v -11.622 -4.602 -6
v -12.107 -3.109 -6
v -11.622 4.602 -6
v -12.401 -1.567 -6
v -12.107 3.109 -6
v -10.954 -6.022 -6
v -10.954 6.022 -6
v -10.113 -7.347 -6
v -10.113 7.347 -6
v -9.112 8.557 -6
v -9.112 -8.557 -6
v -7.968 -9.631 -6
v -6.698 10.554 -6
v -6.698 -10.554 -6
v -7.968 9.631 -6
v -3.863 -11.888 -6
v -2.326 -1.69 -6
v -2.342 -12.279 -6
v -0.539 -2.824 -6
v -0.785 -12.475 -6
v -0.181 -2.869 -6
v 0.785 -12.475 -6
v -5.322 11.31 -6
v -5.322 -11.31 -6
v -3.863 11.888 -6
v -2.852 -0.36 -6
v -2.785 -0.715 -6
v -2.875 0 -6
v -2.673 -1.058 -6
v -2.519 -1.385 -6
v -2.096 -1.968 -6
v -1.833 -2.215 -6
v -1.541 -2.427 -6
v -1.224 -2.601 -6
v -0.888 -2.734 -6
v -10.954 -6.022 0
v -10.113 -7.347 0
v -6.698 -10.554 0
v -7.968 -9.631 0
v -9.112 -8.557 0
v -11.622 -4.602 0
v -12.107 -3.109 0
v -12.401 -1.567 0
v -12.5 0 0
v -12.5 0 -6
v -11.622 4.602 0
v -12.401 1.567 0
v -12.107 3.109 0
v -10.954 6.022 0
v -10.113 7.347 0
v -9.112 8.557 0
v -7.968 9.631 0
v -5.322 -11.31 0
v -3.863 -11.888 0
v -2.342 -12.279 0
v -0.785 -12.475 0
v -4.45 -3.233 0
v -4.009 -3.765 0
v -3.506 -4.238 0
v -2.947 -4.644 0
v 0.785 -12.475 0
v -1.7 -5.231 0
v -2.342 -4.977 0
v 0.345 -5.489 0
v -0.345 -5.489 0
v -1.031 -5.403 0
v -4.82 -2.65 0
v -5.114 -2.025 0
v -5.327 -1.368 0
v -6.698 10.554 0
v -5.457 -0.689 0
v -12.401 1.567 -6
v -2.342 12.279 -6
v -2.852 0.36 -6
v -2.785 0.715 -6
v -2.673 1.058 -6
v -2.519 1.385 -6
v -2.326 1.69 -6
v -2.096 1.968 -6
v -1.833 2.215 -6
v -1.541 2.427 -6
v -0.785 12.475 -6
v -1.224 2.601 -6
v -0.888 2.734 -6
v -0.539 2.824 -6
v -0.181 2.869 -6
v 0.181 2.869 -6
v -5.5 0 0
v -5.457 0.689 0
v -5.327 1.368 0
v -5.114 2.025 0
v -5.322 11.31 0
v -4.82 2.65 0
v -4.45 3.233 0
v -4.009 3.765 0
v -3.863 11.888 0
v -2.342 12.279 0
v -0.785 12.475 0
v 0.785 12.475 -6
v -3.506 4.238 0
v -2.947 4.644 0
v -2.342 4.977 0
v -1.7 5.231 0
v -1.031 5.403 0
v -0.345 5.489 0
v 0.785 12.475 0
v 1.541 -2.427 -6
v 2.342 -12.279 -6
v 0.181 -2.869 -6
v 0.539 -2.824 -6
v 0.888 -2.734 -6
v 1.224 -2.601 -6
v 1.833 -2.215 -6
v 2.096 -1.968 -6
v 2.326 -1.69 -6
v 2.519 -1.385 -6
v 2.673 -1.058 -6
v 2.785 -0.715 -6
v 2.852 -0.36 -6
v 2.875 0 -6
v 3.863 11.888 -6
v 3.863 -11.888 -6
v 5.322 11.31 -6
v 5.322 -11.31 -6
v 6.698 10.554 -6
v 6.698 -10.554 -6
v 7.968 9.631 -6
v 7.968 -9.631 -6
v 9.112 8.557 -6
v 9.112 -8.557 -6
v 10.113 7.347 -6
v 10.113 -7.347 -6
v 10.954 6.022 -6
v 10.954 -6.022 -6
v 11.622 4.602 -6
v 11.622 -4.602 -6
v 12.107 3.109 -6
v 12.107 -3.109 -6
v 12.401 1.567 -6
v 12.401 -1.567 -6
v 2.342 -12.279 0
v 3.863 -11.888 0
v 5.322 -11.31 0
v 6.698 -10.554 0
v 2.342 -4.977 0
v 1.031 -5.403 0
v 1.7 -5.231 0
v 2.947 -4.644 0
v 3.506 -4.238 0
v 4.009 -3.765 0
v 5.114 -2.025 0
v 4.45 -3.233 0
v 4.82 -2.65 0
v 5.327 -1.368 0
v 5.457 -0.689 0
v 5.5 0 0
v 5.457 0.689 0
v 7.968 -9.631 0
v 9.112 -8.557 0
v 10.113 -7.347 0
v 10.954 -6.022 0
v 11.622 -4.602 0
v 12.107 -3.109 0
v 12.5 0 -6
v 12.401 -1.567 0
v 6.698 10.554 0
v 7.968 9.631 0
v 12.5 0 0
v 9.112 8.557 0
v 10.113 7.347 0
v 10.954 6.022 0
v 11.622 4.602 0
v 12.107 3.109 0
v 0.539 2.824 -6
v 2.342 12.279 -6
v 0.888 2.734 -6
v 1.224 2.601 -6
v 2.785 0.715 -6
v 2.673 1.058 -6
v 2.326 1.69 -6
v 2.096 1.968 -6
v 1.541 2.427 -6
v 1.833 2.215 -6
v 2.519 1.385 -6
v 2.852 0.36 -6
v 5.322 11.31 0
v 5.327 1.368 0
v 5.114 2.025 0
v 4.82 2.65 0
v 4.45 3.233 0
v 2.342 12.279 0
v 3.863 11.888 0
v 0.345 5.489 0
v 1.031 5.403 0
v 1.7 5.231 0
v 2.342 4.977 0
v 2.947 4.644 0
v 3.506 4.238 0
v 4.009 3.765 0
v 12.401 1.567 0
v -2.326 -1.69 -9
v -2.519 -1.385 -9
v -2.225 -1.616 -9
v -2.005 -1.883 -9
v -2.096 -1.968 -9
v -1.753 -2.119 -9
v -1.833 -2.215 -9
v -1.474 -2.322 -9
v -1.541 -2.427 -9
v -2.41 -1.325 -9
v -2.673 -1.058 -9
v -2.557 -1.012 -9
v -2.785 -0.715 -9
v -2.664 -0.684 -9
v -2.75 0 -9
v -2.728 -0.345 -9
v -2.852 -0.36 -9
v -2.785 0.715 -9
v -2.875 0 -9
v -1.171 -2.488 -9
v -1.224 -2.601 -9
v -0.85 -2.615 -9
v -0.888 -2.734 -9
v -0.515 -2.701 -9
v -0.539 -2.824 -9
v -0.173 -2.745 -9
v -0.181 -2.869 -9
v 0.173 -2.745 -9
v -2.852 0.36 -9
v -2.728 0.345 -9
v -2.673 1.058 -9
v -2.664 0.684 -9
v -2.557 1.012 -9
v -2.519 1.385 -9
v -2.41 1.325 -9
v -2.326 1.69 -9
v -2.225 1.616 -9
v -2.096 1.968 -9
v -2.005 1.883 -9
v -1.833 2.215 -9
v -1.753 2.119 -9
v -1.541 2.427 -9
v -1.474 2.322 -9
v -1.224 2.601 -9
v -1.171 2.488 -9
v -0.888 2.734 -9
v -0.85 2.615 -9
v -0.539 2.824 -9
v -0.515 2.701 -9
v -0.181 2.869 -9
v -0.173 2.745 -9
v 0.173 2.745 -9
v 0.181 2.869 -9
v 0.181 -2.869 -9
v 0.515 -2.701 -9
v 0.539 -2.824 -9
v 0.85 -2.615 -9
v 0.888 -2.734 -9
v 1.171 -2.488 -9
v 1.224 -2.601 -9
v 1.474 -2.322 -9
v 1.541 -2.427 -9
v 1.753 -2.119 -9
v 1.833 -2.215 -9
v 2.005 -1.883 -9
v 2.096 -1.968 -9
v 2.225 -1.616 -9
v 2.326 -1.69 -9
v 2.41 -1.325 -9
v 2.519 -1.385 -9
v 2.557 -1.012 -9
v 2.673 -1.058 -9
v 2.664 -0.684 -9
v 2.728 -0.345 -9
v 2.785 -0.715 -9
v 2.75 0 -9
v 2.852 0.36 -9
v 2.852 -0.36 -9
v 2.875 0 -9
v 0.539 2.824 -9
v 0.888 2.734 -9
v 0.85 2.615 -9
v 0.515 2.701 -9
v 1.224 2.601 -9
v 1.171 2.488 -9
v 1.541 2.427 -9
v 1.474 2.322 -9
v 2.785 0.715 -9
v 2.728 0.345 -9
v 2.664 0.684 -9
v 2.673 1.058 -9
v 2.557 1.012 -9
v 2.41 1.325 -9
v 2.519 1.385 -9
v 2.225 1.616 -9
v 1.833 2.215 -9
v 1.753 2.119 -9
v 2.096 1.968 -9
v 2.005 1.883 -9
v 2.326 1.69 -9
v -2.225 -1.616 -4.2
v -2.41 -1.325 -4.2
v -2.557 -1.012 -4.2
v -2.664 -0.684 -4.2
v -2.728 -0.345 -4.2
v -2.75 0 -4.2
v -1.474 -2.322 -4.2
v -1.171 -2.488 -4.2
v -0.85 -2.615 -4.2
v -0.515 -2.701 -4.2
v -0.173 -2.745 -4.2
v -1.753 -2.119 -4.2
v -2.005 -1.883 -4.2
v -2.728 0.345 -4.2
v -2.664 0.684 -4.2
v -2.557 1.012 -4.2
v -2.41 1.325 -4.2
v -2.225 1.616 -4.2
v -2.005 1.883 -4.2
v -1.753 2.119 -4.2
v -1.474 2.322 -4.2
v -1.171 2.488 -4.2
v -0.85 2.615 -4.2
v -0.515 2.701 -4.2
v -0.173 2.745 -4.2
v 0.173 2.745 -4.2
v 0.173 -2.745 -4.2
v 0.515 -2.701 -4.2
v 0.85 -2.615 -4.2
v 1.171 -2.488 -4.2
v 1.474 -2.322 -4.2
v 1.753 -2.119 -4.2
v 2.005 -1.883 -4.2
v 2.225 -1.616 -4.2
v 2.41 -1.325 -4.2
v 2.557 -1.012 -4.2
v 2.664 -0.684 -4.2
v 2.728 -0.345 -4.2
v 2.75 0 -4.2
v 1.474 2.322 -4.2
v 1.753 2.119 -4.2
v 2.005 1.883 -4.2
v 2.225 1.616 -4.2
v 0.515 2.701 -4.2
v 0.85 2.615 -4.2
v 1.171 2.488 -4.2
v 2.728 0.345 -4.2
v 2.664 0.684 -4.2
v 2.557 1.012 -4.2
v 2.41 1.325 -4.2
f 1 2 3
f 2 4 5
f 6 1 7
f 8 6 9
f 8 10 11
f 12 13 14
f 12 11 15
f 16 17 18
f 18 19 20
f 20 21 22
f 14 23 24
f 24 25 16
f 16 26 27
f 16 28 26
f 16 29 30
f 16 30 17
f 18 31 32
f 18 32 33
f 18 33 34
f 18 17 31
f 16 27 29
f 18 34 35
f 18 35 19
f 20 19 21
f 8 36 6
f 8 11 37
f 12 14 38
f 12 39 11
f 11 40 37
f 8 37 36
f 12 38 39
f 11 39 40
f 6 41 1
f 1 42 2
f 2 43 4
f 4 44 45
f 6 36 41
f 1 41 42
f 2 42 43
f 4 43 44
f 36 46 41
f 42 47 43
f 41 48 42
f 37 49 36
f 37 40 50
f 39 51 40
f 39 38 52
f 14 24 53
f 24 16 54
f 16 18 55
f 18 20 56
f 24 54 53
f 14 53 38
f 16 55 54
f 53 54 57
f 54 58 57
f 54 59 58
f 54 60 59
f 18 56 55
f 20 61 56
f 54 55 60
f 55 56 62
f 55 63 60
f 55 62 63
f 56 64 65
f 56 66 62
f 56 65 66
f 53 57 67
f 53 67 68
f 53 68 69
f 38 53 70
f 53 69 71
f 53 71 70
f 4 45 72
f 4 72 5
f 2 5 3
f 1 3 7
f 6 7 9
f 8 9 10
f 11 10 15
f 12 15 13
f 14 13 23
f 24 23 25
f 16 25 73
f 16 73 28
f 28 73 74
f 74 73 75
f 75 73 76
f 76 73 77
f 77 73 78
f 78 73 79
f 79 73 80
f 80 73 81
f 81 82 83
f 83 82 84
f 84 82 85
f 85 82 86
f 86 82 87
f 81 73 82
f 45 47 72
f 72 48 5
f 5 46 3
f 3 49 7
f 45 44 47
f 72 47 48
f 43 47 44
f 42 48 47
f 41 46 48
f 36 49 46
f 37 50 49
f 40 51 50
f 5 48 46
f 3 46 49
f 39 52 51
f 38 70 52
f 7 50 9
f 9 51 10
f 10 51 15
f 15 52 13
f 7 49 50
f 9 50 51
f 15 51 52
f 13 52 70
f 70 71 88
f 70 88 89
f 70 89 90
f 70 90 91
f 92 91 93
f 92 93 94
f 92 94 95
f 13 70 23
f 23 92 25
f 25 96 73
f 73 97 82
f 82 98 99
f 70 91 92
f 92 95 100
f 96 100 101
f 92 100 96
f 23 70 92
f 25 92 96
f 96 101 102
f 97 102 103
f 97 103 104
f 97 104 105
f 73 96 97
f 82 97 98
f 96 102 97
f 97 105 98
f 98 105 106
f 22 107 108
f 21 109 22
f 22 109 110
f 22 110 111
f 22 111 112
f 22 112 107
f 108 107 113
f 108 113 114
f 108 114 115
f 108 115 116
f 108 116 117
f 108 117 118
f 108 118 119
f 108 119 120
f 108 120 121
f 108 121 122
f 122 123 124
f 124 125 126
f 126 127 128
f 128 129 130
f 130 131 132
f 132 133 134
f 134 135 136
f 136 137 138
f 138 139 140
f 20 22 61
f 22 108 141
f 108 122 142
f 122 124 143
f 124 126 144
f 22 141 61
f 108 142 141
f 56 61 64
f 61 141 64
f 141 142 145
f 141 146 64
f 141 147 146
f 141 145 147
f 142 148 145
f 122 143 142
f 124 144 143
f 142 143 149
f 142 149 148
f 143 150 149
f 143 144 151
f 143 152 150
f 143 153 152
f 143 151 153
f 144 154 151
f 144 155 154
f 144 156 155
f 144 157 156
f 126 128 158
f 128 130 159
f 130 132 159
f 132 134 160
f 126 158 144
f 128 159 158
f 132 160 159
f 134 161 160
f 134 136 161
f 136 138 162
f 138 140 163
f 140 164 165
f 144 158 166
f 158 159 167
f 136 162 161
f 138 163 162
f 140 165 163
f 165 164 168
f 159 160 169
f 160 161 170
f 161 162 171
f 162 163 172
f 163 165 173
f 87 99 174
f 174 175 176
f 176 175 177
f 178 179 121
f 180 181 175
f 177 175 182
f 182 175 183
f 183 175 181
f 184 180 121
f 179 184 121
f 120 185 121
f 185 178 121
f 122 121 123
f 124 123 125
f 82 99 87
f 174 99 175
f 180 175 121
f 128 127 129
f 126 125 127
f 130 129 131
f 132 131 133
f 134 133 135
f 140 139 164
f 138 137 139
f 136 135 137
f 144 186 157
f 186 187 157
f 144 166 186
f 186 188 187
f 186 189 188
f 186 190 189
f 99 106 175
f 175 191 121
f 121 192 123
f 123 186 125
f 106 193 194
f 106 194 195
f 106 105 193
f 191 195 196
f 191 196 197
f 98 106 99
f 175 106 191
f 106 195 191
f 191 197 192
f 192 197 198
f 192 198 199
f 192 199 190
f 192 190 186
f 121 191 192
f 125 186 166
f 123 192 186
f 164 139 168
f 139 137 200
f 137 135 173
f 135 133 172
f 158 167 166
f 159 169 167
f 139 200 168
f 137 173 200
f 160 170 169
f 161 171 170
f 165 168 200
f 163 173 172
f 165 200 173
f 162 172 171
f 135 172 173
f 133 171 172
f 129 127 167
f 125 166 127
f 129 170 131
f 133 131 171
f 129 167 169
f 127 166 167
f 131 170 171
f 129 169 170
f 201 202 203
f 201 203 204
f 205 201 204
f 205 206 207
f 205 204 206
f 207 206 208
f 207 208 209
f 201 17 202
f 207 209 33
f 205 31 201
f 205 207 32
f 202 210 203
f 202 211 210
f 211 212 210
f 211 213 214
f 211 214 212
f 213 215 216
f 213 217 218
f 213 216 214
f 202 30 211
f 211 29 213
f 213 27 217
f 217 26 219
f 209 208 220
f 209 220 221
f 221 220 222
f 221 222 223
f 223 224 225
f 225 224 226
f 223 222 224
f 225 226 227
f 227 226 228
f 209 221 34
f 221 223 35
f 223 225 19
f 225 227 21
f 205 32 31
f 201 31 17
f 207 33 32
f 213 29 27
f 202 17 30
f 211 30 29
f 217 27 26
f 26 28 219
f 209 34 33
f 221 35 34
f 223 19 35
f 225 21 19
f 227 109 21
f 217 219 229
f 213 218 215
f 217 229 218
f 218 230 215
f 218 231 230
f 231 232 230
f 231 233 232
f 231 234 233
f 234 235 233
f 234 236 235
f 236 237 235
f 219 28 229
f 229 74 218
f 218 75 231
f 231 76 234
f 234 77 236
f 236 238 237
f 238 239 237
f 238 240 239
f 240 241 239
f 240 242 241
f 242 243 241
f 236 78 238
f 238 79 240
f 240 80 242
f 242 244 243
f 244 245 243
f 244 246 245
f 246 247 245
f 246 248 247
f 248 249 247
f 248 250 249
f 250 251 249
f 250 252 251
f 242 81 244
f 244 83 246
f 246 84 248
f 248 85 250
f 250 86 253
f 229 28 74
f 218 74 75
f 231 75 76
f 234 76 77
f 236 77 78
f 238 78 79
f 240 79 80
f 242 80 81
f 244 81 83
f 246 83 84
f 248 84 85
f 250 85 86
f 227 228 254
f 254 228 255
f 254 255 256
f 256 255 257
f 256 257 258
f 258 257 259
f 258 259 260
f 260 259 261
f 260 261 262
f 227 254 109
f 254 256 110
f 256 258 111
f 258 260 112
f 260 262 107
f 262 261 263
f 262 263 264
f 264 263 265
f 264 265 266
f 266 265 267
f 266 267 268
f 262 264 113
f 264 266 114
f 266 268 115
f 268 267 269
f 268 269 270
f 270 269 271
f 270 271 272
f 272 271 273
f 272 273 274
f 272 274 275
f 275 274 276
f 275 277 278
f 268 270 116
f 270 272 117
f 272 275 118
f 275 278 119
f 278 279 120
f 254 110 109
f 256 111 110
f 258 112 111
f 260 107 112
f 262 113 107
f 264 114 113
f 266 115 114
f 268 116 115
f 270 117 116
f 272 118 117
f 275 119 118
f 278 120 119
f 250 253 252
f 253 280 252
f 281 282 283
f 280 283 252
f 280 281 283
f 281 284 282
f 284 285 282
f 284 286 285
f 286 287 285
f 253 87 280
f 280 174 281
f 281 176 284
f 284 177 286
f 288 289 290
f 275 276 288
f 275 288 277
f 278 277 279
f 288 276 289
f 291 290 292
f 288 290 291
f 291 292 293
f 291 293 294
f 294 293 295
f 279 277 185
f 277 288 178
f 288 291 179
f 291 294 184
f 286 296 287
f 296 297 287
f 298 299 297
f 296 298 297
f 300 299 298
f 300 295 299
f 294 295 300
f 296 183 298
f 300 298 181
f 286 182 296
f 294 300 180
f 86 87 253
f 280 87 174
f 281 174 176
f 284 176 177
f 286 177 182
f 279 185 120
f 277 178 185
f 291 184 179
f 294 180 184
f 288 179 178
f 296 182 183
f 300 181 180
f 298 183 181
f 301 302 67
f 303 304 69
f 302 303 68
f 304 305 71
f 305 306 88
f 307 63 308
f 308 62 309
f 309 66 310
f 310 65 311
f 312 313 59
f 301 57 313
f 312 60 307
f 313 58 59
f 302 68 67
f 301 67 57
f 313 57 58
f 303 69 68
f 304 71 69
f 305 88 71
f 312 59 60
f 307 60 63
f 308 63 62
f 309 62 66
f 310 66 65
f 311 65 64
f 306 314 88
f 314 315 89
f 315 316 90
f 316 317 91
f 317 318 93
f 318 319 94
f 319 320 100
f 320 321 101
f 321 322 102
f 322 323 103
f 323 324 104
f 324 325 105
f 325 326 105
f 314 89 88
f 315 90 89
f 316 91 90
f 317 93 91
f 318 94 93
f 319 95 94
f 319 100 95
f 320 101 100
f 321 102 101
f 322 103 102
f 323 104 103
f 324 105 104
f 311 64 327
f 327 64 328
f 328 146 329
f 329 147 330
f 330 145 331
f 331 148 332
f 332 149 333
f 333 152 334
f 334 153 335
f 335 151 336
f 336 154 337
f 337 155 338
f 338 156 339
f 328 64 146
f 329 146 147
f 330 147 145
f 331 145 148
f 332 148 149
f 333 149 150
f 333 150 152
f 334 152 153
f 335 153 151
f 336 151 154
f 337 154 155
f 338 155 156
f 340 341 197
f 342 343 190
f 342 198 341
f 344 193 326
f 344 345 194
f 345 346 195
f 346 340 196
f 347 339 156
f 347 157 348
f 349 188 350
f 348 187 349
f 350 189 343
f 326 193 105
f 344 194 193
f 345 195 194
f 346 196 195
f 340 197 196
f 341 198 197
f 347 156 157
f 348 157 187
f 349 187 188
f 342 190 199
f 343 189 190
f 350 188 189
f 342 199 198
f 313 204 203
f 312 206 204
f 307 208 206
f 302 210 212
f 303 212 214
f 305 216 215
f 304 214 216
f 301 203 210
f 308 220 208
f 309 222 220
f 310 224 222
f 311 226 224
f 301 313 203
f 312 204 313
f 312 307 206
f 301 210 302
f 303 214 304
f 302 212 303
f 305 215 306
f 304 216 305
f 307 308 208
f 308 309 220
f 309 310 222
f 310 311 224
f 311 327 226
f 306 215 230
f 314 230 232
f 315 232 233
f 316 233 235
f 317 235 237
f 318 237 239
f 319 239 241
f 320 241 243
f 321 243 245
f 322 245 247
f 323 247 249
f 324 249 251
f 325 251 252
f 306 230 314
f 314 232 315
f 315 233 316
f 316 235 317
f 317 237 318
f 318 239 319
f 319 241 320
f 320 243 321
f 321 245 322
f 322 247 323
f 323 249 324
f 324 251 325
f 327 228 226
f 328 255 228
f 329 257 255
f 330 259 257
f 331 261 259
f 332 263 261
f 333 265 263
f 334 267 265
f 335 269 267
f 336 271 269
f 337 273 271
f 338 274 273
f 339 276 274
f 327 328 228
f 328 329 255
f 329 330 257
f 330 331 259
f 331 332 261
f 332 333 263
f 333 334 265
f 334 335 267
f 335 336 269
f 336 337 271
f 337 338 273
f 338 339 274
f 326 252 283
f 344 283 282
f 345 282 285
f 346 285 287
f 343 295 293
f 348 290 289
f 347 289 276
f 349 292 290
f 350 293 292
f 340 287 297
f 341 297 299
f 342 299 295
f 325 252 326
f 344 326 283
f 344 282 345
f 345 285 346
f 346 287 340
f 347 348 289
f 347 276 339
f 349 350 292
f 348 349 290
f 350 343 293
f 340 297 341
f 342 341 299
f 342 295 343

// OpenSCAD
$fn = 50;

difference() {
	union() {
		translate(v = [0, 0, -6.0]) {
			cylinder(h = 6, r = 12.5);
		}
		#translate(v = [0, 0, -9.0]) {
			cylinder(h = 9, r = 2.875);
		}
	}
	union() {
		translate(v = [0, 0, 0]) {
			rotate(a = [0, 0, 0]) {
				difference() {
					union() {
						translate(v = [0, 0, -9.0]) {
							cylinder(h = 9, r = 2.25);
						}
						translate(v = [0, 0, -4.2]) {
							cylinder(h = 4.2, r1 = 2.75, r2 = 5.5);
						}
						translate(v = [0, 0, -9.0]) {
							cylinder(h = 9, r = 2.75);
						}
						translate(v = [0, 0, -9.0]) {
							cylinder(h = 9, r = 2.25);
						}
					}
					union();
				}
			}
		}
	}
}
